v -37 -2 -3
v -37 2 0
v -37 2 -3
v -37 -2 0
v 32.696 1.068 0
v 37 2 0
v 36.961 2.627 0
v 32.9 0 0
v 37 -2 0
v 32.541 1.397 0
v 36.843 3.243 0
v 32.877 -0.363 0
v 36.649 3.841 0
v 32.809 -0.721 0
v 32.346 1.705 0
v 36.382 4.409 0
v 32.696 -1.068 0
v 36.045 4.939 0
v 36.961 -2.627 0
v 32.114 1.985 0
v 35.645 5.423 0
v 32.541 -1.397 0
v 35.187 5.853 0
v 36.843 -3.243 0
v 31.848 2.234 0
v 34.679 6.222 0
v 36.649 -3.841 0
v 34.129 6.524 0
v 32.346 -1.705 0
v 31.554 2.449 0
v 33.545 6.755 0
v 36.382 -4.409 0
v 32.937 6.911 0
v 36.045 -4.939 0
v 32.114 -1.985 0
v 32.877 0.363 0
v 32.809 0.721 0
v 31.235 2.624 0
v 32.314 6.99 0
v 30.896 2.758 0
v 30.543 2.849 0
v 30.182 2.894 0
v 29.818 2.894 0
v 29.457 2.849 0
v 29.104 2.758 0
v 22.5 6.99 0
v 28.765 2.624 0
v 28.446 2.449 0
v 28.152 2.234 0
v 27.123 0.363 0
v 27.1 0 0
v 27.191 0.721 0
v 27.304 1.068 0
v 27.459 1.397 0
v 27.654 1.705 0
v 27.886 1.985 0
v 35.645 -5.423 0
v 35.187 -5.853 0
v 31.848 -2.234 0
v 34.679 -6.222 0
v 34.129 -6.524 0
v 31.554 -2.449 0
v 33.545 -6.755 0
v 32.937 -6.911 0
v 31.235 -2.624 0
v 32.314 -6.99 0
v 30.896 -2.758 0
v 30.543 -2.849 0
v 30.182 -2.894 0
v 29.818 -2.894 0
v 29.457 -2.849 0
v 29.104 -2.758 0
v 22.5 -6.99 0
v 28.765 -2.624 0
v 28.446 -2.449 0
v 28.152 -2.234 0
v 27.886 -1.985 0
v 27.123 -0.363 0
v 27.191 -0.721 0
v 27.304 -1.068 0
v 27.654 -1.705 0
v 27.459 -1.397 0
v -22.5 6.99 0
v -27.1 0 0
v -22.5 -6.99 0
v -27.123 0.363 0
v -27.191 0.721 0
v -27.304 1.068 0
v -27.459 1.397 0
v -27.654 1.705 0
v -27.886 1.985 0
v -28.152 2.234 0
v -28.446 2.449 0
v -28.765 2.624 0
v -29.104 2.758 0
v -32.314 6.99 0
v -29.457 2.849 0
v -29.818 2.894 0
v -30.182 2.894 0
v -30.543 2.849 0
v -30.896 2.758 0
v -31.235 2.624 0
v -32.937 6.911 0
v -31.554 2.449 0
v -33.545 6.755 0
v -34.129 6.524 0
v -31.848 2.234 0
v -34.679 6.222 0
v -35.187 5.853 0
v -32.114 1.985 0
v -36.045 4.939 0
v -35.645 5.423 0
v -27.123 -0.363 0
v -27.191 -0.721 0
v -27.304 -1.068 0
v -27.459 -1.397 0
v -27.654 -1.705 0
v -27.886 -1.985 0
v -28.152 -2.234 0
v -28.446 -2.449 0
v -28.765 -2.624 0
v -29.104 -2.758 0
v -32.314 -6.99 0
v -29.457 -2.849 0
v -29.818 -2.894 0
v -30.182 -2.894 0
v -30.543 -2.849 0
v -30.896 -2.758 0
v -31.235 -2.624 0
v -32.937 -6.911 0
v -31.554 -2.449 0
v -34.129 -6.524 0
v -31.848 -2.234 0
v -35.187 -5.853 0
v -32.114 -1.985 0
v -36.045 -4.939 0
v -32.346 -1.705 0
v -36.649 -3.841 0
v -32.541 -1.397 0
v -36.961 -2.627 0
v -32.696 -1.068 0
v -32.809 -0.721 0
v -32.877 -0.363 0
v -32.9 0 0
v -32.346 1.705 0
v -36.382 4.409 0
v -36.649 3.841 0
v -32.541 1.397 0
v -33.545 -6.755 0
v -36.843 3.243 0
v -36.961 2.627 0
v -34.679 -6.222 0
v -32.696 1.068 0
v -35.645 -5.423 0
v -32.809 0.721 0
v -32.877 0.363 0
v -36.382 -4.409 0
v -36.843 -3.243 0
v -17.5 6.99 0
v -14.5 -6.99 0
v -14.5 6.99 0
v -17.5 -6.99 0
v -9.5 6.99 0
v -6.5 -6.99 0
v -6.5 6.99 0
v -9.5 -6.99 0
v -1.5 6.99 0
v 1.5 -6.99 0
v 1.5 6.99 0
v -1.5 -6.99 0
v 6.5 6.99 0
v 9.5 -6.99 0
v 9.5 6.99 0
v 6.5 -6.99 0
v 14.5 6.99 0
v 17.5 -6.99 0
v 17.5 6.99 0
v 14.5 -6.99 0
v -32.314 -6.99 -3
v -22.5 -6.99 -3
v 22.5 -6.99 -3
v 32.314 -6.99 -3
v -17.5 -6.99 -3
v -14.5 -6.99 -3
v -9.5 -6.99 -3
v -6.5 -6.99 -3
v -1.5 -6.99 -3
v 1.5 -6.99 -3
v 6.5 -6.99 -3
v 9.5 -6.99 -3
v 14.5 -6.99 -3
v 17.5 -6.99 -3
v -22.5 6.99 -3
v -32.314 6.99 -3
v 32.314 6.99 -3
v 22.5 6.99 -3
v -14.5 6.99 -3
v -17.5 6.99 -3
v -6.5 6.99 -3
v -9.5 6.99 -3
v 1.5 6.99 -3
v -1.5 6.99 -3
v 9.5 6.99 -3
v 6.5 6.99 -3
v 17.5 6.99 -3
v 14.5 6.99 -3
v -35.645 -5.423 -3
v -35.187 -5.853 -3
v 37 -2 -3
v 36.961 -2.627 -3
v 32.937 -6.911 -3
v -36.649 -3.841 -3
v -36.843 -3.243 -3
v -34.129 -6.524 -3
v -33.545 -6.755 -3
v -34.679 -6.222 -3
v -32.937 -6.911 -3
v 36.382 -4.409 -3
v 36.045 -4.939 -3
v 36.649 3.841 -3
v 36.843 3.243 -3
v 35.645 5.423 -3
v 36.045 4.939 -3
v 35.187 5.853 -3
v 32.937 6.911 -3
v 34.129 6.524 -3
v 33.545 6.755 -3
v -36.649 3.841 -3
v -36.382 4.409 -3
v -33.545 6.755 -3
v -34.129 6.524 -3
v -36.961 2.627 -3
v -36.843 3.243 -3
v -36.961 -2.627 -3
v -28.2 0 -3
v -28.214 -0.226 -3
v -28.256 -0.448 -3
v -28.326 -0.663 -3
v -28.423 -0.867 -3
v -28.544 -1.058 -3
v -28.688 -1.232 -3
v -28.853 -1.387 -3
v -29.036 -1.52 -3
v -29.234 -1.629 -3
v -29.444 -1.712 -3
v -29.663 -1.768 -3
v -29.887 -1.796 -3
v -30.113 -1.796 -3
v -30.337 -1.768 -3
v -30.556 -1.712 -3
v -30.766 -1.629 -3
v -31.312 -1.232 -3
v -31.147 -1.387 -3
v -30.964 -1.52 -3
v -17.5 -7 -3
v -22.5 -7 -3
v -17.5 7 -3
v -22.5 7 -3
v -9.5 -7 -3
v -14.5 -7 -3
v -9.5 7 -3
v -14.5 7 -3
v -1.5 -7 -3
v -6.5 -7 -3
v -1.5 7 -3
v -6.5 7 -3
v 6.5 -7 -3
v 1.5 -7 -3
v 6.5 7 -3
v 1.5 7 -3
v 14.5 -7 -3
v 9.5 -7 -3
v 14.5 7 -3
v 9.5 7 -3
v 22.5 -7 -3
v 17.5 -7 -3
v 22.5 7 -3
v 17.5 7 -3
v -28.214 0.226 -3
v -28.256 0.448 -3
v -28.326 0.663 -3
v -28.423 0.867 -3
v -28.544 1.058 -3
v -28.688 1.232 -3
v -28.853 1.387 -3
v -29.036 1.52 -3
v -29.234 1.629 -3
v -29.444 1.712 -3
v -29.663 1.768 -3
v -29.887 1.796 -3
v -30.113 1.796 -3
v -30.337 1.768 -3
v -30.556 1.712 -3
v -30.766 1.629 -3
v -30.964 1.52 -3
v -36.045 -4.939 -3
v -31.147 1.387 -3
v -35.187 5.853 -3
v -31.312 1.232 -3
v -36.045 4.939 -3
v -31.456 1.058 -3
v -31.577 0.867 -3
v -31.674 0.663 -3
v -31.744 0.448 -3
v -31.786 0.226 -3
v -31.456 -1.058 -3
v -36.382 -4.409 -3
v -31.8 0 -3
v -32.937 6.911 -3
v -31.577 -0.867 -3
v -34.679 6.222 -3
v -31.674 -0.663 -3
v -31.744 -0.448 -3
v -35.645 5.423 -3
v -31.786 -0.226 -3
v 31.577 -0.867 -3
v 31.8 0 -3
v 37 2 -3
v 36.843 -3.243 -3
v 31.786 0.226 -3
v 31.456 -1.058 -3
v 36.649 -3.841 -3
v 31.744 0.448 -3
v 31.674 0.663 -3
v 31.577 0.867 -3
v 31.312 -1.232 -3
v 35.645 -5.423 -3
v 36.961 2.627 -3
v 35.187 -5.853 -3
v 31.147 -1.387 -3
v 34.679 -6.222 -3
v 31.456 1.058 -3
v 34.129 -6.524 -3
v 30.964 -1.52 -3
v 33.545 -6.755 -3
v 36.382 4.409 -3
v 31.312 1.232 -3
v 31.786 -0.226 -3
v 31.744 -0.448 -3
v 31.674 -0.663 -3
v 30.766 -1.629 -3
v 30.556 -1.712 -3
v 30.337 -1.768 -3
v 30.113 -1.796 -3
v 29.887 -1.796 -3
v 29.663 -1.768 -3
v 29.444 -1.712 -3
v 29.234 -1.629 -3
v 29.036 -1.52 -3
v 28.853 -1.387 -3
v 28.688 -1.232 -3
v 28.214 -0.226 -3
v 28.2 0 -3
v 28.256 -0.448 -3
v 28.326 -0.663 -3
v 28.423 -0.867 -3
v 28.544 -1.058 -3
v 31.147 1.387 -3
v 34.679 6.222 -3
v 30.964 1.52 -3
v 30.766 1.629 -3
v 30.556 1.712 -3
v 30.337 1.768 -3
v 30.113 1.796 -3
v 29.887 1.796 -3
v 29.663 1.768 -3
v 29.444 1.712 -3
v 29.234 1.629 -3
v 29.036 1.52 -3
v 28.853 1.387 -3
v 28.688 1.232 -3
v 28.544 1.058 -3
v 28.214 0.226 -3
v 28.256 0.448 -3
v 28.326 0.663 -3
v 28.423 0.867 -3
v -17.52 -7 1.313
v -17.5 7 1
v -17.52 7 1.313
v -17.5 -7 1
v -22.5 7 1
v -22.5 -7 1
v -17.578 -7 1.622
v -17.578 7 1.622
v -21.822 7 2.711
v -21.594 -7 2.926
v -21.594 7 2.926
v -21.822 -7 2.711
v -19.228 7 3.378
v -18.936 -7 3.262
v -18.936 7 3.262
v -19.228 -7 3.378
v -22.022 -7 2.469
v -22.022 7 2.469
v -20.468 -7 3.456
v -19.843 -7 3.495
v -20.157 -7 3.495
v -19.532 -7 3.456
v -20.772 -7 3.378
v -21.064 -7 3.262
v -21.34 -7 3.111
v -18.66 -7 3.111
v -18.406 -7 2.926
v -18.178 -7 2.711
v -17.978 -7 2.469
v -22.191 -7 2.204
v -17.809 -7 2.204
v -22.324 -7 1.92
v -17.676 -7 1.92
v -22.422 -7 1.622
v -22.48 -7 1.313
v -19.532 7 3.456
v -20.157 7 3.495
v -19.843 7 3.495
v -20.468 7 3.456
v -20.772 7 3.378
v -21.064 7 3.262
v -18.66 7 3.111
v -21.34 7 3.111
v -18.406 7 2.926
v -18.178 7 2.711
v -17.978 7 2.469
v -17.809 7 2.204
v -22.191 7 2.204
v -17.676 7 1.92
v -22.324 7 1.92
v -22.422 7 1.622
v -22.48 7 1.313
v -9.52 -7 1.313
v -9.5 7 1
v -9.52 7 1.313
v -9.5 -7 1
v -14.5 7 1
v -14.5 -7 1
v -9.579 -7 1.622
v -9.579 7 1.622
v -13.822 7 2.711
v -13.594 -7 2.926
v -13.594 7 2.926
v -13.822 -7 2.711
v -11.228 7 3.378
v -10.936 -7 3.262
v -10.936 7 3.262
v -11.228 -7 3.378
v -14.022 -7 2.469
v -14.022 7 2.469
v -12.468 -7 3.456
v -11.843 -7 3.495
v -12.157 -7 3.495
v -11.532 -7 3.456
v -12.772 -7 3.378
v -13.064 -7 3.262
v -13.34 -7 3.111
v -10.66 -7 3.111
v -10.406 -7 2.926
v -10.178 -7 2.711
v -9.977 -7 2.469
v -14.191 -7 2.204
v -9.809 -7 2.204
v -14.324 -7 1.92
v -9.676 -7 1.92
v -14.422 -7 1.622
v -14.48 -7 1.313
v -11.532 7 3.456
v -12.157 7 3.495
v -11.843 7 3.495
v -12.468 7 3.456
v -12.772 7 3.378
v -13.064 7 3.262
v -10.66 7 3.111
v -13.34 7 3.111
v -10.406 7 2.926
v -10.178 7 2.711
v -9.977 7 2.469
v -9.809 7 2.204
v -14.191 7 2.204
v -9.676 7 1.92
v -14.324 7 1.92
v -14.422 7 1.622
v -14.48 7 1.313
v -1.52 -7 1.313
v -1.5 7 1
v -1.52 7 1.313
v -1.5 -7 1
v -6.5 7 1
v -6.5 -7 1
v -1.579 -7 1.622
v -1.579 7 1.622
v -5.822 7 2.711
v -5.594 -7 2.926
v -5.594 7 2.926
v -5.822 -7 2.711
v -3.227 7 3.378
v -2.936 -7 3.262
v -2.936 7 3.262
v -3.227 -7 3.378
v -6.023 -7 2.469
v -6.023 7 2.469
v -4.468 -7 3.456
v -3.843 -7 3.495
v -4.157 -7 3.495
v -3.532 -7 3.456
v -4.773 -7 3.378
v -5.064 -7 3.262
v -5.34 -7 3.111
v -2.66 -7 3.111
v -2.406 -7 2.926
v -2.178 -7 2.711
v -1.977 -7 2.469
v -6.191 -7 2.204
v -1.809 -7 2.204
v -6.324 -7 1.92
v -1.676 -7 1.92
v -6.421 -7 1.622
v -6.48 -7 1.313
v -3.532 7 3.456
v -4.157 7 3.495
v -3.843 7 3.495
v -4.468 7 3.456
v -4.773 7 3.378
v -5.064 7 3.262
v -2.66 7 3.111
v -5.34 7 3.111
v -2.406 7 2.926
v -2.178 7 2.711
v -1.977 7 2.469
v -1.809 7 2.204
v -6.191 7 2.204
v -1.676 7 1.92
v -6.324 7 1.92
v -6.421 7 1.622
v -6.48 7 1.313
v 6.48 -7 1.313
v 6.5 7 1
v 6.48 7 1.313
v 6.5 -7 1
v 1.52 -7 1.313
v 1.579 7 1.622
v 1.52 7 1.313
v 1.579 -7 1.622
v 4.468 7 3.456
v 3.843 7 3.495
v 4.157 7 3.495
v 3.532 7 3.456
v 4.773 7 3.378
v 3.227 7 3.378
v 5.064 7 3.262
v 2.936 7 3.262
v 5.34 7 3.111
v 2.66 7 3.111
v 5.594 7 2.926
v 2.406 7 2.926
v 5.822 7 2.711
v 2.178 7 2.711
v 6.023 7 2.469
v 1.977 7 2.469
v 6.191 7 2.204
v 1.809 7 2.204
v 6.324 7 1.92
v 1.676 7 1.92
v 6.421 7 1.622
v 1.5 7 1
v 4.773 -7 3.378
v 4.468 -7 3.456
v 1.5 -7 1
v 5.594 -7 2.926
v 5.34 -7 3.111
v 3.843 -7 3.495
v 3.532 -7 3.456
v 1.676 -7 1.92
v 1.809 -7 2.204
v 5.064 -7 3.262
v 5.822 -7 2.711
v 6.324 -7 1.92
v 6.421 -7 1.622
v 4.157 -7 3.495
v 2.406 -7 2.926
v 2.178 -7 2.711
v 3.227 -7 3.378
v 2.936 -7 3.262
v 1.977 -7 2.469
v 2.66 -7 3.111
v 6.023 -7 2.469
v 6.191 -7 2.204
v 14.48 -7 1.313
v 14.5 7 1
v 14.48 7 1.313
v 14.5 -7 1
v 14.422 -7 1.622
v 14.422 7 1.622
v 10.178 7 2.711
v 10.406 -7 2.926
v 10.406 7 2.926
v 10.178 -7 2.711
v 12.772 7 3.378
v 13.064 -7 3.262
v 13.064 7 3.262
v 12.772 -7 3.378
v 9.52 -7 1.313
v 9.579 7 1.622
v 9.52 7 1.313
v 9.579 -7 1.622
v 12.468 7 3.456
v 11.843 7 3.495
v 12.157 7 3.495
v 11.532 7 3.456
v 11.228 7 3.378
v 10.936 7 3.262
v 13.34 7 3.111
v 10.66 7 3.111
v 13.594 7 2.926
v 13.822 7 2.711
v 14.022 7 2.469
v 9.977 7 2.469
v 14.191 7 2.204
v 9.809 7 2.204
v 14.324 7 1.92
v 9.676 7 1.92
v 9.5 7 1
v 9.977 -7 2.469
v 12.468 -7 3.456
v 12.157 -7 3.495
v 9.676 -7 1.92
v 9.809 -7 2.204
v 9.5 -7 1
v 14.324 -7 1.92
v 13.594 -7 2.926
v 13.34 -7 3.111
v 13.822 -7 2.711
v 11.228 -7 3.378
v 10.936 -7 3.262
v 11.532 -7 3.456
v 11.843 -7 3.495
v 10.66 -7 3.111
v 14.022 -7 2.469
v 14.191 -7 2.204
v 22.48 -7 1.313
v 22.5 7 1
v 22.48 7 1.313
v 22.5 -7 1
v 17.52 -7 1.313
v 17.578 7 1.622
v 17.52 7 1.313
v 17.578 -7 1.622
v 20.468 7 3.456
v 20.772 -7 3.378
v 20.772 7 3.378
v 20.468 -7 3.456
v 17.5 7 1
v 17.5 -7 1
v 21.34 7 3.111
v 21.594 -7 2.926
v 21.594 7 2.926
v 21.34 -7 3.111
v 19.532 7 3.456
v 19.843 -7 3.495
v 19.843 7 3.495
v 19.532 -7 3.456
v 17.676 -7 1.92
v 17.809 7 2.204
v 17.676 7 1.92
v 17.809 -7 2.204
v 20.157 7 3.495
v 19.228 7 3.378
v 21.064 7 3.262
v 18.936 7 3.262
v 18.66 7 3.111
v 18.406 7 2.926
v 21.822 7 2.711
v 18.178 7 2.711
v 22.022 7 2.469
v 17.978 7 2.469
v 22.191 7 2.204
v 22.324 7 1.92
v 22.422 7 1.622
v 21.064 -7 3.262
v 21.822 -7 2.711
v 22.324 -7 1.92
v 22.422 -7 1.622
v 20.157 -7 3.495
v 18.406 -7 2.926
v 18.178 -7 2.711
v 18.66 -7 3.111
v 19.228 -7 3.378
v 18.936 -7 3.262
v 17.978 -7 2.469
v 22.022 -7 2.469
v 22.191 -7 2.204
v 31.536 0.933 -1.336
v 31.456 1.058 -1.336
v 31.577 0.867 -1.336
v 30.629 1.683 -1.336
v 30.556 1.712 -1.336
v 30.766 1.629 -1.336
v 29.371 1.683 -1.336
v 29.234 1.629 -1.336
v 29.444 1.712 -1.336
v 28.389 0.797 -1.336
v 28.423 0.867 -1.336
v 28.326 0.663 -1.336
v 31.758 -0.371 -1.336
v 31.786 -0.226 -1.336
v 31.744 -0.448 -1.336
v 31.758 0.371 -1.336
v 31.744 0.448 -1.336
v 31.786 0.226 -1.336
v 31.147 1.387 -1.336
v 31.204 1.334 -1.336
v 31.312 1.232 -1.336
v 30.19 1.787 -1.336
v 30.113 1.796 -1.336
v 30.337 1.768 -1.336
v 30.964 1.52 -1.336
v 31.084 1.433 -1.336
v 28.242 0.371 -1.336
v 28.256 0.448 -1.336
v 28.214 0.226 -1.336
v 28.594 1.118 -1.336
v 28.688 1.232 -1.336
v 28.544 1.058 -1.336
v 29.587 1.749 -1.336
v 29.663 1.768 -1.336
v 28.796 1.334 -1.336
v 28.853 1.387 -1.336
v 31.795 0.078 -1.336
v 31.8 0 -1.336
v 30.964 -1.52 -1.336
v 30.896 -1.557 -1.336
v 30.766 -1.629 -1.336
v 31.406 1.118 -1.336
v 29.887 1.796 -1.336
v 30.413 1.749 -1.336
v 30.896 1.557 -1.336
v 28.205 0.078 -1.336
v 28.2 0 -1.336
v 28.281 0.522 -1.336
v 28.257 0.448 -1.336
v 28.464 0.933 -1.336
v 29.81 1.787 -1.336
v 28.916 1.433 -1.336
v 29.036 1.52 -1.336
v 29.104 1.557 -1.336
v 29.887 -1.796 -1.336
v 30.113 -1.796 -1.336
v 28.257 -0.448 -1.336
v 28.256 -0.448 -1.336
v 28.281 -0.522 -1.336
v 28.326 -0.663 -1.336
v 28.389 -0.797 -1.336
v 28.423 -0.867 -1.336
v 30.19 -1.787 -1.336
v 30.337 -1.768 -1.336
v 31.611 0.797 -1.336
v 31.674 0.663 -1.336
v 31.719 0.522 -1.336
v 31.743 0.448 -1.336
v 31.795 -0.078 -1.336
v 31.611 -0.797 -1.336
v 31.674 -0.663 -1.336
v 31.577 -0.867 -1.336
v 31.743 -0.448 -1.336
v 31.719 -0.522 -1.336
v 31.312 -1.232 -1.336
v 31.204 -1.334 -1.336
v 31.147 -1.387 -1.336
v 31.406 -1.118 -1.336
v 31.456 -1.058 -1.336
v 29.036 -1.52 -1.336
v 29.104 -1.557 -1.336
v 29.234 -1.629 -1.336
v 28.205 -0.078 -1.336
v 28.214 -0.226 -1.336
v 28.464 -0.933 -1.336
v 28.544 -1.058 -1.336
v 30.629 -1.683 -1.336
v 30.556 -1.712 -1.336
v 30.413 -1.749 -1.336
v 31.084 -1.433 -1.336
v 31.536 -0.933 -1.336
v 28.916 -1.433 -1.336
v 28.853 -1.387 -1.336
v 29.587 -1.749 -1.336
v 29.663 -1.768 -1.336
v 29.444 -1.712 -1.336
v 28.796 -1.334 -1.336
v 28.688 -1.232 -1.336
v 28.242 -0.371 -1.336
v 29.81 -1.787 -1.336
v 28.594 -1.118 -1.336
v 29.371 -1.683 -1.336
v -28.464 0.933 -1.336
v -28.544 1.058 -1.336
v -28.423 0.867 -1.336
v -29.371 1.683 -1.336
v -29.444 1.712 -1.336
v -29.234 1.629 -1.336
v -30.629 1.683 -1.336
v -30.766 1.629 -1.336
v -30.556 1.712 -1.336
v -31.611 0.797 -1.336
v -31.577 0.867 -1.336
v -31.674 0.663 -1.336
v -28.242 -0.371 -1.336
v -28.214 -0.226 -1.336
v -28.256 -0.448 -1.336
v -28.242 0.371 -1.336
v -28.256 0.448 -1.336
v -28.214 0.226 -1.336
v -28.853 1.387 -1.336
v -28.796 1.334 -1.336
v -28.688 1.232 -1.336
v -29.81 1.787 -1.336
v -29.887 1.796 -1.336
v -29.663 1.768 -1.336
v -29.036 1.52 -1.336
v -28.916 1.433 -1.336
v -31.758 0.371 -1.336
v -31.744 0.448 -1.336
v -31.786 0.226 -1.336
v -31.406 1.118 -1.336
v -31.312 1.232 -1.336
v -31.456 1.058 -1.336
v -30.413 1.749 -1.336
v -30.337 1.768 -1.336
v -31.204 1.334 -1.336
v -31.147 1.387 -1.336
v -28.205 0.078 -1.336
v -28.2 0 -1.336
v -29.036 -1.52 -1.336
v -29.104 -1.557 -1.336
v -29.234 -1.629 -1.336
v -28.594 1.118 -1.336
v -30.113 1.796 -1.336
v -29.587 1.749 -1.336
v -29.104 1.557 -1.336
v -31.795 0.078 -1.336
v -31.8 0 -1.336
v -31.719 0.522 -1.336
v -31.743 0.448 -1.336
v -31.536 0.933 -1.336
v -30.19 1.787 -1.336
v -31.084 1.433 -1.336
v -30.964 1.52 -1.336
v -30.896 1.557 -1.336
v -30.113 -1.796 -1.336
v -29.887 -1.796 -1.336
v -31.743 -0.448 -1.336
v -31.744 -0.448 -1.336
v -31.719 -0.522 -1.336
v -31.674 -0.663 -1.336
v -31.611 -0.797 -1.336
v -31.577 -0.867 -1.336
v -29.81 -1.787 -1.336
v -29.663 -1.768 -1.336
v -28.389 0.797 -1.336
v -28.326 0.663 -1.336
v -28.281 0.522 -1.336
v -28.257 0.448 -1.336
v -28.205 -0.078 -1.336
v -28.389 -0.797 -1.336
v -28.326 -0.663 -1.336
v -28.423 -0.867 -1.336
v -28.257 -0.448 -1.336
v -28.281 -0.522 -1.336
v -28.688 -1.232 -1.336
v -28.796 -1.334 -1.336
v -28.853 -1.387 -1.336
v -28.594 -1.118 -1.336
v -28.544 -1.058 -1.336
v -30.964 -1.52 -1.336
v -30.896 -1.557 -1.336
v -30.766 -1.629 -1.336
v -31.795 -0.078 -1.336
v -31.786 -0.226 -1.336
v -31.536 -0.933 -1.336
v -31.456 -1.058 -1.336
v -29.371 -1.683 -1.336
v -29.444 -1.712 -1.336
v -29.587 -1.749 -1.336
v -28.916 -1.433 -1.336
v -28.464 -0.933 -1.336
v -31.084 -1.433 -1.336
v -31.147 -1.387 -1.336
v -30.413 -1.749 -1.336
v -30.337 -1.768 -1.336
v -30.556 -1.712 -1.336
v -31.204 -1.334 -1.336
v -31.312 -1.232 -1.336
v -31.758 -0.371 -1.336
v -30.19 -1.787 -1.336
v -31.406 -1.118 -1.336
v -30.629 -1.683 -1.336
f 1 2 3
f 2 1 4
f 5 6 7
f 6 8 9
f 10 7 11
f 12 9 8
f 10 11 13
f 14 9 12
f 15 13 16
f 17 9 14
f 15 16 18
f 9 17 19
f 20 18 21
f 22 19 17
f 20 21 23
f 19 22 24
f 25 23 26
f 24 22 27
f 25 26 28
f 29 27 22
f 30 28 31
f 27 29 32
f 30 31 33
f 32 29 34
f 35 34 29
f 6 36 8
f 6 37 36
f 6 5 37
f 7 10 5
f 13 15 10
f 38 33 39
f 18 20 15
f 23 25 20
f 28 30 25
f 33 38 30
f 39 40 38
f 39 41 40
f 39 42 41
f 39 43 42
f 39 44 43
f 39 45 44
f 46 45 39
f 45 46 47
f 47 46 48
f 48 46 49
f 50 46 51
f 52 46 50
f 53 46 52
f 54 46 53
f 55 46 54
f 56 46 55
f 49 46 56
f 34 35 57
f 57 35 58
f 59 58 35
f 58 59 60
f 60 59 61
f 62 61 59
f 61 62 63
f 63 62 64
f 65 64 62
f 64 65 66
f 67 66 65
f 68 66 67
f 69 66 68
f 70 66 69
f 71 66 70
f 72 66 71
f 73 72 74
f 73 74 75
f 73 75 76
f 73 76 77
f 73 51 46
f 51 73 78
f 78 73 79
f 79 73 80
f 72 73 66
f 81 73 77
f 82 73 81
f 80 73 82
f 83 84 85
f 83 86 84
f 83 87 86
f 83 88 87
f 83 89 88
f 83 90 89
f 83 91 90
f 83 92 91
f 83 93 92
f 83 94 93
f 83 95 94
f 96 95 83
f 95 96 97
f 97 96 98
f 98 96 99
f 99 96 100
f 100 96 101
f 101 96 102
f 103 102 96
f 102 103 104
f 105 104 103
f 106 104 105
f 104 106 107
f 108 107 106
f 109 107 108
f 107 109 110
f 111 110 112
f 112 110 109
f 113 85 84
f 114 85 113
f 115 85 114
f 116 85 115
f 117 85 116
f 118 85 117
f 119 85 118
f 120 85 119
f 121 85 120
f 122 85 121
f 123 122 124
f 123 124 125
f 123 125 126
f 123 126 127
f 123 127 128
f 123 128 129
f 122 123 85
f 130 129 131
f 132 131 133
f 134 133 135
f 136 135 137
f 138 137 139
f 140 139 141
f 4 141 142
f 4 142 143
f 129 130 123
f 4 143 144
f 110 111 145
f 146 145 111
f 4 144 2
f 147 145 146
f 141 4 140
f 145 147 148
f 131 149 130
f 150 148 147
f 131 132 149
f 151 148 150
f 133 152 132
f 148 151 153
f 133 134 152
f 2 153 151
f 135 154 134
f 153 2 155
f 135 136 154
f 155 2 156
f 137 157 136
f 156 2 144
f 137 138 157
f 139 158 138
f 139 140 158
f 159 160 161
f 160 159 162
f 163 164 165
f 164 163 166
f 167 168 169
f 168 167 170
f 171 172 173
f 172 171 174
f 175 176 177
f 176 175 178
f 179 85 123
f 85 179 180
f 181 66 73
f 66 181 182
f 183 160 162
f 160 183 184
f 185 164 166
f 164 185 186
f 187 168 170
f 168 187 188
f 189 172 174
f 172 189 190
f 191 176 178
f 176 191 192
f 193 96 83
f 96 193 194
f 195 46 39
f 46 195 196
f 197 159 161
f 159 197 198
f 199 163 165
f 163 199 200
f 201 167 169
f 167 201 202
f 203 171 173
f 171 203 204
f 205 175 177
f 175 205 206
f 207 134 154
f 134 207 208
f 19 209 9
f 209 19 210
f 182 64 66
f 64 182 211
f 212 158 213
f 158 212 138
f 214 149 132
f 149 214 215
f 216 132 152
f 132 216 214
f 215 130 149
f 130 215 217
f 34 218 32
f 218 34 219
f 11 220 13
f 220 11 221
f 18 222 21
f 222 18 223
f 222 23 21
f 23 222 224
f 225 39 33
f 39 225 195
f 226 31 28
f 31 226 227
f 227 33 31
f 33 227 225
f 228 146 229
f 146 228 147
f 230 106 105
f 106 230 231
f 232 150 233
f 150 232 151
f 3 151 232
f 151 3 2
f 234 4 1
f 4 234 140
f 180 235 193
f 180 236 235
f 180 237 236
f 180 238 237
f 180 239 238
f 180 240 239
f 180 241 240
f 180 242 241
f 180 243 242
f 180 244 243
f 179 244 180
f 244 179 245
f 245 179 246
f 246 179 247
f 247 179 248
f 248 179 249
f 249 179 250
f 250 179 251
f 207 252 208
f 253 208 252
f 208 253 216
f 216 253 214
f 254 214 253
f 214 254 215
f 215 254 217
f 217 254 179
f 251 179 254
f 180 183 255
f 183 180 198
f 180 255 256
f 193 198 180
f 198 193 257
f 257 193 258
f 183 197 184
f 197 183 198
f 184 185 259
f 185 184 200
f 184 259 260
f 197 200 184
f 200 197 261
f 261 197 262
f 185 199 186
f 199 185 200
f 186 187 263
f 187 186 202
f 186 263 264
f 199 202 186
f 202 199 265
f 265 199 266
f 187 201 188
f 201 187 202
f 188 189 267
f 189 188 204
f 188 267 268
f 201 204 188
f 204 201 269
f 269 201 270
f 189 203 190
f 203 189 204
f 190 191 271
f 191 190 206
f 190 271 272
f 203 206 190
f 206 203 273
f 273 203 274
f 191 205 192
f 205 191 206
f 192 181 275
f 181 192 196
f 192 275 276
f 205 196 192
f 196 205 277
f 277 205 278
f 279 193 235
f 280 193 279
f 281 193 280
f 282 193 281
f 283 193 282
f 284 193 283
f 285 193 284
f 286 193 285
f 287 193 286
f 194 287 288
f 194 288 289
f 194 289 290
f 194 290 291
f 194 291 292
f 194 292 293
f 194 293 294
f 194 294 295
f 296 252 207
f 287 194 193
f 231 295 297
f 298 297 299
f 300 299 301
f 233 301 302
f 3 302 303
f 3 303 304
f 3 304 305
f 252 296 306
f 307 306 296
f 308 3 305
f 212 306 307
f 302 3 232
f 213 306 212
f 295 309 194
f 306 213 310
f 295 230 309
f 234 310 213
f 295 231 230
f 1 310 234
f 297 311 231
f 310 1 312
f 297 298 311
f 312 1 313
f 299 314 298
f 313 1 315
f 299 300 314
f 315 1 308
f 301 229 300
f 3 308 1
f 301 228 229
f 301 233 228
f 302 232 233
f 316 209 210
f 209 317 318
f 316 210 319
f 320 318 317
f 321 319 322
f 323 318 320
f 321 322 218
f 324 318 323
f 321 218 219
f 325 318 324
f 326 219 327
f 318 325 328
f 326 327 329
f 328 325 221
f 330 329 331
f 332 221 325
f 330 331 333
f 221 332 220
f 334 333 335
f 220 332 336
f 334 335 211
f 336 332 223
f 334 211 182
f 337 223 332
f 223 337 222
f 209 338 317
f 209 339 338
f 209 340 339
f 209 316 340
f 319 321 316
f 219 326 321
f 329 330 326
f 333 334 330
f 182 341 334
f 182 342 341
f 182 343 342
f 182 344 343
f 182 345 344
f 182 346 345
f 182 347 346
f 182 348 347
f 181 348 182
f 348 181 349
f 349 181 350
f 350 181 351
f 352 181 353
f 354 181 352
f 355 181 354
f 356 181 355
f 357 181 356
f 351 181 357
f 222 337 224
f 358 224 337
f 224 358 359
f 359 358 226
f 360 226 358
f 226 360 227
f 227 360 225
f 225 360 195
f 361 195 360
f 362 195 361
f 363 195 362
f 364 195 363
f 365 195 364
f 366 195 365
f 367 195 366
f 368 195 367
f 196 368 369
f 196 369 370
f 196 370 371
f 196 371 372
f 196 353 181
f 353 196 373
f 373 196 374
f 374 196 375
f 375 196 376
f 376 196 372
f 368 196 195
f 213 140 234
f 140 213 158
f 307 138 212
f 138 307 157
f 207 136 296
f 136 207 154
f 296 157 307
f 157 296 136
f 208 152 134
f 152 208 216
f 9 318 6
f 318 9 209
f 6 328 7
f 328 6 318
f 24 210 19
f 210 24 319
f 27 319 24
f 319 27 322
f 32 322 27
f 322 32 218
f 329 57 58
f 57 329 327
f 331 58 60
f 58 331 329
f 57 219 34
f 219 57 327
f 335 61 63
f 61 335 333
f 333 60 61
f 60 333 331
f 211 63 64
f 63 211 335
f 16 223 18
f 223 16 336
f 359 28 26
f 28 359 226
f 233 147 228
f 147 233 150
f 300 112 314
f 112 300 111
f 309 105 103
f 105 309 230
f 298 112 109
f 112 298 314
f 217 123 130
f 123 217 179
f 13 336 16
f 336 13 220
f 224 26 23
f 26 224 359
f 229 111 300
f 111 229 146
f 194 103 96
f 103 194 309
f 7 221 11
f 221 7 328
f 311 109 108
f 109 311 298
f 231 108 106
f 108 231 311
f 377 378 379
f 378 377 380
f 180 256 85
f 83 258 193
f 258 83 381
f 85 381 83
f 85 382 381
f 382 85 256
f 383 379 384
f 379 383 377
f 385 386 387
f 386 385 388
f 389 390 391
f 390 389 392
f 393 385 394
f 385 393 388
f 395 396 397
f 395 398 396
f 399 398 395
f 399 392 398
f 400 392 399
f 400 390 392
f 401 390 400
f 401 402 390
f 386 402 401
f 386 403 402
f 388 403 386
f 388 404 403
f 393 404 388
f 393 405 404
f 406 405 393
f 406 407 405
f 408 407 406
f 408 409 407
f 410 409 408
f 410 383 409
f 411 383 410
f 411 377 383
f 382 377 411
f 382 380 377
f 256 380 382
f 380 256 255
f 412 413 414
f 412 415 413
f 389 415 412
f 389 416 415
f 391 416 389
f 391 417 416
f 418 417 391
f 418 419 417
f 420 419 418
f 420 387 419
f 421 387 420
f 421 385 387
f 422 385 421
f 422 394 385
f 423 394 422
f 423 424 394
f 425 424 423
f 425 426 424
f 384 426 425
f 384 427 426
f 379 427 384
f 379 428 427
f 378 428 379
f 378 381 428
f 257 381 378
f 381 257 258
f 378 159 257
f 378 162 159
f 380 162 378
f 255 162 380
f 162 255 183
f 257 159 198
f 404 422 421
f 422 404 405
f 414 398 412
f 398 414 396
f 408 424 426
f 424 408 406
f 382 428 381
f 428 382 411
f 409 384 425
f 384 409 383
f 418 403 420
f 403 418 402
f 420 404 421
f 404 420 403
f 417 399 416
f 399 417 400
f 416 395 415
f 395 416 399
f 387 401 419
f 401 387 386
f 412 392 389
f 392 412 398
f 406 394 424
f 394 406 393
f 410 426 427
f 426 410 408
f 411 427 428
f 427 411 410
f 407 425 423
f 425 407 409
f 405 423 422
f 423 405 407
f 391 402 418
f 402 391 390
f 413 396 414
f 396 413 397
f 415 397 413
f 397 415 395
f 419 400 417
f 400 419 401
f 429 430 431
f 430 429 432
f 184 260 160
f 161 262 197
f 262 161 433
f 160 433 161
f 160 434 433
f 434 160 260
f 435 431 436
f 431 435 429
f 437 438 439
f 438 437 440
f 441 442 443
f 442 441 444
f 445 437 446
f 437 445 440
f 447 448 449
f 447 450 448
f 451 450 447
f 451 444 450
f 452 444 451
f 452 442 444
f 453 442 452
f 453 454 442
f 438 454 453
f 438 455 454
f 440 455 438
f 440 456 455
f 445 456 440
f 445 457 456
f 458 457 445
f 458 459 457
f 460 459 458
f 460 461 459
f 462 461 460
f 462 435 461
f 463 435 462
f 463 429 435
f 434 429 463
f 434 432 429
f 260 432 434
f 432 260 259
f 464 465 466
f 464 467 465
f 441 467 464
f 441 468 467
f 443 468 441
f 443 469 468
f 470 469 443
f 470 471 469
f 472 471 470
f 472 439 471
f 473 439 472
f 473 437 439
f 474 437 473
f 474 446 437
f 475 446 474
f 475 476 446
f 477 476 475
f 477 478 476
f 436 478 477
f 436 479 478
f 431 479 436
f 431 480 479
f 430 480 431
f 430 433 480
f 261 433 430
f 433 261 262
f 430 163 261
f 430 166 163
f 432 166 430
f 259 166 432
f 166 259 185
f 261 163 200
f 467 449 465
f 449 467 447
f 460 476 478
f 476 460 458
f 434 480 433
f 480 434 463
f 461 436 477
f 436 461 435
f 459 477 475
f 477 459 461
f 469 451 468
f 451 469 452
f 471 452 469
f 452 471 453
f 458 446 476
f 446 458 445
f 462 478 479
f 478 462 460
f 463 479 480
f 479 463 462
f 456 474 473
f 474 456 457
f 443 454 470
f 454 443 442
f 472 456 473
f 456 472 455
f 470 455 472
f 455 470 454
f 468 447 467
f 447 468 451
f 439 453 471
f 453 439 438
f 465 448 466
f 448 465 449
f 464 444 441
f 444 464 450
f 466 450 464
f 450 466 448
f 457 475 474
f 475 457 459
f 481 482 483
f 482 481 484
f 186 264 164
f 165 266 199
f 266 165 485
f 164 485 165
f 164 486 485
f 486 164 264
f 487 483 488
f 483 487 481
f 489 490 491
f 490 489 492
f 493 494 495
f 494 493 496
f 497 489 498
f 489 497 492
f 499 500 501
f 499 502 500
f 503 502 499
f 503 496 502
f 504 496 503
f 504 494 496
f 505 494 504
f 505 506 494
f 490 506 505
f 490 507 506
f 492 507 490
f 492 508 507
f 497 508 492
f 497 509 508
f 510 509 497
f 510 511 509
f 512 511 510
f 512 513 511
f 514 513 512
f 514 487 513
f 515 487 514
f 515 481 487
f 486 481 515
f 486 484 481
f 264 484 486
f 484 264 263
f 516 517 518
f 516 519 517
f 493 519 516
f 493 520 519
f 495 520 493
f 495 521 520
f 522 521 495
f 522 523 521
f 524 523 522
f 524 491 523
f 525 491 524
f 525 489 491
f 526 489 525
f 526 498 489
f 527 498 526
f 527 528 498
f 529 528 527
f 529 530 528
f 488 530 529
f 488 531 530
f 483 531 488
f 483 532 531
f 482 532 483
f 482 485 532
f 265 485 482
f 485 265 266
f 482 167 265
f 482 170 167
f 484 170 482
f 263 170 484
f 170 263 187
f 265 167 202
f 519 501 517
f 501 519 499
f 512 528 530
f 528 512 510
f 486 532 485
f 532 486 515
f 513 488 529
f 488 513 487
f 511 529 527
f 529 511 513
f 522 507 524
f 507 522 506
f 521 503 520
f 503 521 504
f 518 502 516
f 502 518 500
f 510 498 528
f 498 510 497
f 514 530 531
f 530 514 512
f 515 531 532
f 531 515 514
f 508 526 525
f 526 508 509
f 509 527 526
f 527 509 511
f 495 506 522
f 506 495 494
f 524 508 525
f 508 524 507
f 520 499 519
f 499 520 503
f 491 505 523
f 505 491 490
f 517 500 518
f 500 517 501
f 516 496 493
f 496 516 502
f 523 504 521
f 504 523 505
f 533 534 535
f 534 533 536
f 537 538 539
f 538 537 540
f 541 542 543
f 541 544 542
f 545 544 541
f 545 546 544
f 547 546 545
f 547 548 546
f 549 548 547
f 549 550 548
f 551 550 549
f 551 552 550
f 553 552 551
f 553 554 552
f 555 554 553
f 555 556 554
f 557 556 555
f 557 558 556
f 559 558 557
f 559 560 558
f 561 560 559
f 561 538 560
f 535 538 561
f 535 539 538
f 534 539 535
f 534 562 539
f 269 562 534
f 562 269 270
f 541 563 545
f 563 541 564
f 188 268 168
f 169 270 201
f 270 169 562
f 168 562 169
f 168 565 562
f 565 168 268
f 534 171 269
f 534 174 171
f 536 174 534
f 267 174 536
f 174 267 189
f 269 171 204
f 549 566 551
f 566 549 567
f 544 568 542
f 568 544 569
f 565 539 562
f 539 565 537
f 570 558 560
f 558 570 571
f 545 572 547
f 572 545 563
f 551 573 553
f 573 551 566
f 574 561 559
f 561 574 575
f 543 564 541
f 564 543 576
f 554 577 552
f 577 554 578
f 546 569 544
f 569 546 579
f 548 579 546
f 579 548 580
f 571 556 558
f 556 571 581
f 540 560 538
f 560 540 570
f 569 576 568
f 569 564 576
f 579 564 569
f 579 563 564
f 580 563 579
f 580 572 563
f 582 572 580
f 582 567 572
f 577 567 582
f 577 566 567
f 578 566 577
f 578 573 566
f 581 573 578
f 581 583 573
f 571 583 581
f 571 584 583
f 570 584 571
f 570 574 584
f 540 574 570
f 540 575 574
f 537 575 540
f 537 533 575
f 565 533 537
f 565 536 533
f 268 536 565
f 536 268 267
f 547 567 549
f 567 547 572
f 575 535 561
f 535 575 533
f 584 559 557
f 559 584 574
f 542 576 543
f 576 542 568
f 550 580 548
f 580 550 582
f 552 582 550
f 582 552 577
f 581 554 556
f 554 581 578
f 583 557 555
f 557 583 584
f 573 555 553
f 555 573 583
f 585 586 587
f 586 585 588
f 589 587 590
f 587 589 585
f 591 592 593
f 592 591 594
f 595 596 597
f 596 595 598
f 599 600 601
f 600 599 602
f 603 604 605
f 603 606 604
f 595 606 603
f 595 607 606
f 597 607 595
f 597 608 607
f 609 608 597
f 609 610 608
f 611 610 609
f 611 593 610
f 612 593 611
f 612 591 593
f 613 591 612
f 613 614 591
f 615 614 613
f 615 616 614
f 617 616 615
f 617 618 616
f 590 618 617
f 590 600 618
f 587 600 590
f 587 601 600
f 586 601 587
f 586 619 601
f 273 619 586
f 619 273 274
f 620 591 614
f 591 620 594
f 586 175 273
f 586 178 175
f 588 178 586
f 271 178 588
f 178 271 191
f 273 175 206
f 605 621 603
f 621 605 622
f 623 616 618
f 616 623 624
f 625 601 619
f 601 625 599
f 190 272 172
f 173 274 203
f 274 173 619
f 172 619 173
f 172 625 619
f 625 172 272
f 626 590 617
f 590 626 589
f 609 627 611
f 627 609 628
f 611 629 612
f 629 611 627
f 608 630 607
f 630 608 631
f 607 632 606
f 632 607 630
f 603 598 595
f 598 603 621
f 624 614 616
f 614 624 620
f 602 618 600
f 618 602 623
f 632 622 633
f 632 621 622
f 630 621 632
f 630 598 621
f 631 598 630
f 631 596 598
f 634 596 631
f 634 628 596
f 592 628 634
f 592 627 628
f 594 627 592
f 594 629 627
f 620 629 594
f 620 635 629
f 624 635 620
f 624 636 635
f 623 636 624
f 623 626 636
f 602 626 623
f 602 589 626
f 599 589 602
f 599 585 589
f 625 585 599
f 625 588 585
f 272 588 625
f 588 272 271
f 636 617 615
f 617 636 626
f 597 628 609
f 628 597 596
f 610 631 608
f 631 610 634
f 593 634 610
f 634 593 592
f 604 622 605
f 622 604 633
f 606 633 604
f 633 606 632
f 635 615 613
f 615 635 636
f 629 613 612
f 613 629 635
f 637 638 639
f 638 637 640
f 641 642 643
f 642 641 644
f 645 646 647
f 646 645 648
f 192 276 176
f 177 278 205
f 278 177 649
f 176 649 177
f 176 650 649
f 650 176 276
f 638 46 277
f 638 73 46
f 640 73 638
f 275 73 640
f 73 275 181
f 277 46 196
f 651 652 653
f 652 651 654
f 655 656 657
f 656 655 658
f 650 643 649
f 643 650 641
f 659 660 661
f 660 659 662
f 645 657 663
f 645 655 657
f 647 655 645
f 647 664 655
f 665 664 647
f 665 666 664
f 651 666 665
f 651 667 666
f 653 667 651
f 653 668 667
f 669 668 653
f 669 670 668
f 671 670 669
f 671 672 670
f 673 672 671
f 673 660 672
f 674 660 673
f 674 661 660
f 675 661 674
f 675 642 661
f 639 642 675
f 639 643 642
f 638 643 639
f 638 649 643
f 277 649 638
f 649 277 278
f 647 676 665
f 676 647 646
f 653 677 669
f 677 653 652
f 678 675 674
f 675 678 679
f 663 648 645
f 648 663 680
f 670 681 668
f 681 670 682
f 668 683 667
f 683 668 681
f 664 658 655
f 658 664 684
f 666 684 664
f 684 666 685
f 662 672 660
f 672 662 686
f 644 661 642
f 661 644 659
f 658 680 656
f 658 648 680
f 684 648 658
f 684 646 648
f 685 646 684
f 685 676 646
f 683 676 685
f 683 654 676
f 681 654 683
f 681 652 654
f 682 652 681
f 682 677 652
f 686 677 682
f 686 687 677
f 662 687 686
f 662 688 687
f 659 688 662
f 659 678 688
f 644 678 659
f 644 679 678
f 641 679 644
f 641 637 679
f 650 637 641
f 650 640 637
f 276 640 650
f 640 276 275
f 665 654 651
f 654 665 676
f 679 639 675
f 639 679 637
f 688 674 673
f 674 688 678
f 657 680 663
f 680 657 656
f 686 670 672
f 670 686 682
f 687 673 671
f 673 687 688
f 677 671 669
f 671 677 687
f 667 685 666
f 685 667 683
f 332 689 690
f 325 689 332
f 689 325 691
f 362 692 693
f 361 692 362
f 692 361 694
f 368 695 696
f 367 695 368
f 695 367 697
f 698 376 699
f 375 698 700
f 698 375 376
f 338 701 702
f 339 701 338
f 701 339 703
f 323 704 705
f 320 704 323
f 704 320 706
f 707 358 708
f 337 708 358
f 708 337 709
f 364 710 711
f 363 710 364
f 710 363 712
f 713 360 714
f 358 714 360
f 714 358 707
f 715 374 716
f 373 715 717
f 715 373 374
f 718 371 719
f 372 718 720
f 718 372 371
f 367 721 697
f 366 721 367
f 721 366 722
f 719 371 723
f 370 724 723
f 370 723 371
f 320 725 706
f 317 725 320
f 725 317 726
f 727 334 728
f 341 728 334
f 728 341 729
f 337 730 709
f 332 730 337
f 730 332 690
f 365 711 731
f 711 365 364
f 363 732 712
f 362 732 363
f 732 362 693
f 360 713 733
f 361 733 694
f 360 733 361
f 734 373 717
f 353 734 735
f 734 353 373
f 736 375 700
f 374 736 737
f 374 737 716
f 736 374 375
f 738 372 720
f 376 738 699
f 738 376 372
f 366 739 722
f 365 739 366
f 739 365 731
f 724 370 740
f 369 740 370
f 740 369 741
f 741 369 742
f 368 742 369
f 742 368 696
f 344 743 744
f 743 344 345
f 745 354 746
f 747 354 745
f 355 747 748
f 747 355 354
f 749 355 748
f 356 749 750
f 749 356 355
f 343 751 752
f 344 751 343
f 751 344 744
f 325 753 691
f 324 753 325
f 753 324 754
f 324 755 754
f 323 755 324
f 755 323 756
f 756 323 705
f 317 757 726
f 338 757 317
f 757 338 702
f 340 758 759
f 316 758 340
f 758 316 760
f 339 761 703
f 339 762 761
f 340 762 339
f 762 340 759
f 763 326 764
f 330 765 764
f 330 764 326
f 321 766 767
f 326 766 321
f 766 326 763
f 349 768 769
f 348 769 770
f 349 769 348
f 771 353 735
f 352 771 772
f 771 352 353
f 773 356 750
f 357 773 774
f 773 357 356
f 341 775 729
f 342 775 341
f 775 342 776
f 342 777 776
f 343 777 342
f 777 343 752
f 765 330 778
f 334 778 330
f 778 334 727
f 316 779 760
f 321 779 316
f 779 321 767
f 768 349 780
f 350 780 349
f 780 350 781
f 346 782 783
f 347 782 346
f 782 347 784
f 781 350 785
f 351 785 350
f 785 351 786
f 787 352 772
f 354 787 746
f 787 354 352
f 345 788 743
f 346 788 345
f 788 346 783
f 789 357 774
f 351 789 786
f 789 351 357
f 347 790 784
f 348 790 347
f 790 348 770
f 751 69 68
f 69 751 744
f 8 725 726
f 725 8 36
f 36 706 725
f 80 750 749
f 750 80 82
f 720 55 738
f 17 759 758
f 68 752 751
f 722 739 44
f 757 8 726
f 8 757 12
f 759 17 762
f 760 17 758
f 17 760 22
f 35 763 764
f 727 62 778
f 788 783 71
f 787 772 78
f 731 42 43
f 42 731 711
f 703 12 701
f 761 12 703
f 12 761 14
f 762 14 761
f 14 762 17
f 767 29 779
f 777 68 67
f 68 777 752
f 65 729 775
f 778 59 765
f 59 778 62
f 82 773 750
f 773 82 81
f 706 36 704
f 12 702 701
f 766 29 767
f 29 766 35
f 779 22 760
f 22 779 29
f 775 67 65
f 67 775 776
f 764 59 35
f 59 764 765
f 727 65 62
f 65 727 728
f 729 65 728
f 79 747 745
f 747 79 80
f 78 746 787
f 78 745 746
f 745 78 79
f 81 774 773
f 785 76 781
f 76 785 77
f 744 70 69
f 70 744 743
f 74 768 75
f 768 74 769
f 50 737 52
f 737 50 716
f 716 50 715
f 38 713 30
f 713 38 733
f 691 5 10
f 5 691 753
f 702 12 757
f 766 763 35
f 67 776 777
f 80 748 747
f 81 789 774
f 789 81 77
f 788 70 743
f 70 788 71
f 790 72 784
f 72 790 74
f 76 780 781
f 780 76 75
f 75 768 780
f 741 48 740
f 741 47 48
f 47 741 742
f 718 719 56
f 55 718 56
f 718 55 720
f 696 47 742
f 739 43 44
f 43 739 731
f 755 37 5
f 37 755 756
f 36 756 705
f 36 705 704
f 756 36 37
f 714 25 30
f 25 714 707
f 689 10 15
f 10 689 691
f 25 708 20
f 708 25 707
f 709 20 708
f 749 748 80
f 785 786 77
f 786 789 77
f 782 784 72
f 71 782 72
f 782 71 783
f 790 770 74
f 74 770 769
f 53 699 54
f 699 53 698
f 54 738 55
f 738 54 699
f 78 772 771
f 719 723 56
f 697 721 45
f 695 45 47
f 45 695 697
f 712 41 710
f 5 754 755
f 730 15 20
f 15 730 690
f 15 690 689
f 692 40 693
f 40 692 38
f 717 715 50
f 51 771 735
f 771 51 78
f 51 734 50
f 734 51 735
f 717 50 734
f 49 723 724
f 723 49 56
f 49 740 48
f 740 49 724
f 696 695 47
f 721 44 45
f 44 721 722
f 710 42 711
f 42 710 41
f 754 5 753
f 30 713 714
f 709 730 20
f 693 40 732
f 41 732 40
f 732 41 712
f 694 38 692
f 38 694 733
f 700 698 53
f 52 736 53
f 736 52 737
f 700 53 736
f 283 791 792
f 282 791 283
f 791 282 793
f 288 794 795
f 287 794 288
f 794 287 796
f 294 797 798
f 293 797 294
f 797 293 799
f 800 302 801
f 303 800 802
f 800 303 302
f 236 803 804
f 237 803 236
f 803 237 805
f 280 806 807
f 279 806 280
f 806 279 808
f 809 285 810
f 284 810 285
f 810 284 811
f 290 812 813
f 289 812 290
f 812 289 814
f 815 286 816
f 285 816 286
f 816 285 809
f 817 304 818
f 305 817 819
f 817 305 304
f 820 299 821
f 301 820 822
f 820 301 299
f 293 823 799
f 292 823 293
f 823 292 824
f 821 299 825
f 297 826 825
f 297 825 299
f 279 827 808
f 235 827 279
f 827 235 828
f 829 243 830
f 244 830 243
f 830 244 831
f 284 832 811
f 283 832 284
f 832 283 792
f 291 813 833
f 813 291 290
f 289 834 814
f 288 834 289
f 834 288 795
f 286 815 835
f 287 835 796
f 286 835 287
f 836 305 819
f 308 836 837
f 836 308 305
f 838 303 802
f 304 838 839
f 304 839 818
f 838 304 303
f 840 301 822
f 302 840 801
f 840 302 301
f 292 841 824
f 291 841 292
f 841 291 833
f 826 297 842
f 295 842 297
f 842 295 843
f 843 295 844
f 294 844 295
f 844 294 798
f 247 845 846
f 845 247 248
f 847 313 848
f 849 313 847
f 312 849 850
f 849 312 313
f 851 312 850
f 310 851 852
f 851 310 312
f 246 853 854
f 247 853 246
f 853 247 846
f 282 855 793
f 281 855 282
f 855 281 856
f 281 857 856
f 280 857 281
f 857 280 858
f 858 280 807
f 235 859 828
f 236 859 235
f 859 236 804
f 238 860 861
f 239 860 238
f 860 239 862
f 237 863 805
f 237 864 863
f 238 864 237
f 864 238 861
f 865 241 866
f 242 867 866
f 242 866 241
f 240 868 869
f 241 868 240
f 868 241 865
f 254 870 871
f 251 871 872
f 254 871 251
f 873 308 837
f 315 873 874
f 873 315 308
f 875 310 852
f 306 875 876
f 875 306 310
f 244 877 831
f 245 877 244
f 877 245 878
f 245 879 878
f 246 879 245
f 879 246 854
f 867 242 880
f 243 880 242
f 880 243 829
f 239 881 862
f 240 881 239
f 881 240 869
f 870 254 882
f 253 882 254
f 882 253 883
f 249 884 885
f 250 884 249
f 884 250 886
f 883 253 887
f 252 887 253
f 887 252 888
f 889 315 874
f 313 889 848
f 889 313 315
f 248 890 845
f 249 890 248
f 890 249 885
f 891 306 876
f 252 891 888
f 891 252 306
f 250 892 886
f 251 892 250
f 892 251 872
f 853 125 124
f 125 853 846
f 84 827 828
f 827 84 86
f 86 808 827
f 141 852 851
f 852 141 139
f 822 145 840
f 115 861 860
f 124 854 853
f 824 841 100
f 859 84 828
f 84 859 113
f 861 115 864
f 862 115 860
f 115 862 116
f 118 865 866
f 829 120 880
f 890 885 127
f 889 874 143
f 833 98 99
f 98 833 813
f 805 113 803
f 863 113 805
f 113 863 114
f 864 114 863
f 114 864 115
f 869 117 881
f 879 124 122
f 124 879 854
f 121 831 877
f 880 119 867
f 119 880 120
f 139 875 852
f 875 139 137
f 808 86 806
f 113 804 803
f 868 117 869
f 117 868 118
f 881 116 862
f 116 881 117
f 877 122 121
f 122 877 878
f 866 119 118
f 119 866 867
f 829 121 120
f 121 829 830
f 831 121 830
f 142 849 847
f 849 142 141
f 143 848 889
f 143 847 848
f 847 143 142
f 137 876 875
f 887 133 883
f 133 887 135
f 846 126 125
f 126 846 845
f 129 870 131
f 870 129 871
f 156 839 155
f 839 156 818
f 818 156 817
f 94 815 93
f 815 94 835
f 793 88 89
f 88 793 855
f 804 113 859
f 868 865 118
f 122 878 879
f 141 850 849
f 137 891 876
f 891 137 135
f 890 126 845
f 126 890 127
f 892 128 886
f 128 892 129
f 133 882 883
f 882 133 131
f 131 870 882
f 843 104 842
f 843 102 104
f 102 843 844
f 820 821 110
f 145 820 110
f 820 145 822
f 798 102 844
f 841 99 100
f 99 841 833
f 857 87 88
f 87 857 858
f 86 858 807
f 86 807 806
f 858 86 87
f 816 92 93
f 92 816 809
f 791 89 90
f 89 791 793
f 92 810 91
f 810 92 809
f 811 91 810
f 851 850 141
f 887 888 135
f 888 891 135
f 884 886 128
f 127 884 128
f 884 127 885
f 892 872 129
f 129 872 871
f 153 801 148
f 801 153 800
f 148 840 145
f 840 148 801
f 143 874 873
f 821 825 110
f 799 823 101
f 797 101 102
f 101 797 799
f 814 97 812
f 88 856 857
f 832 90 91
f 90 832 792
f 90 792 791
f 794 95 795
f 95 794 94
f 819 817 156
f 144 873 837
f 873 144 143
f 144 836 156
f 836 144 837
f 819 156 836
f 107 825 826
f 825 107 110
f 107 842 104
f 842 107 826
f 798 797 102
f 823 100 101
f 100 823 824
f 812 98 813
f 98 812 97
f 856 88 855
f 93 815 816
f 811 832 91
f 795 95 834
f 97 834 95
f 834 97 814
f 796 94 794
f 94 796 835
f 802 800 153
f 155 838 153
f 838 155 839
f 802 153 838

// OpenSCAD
$fn = 50;


difference() {
	union() {
		translate(v = [0, 0, -3]) {
			hull() {
				translate(v = [-32.0000000000, 2.0000000000, 0]) {
					cylinder(h = 3, r = 5);
				}
				translate(v = [32.0000000000, 2.0000000000, 0]) {
					cylinder(h = 3, r = 5);
				}
				translate(v = [-32.0000000000, -2.0000000000, 0]) {
					cylinder(h = 3, r = 5);
				}
				translate(v = [32.0000000000, -2.0000000000, 0]) {
					cylinder(h = 3, r = 5);
				}
			}
		}
		translate(v = [-20.0000000000, 7.0000000000, -1.5000000000]) {
			rotate(a = [90, 0, 0]) {
				hull() {
					translate(v = [-0.0000000000, 2.5000000000, 0]) {
						cylinder(h = 14, r = 2.5000000000);
					}
					translate(v = [0.0000000000, 2.5000000000, 0]) {
						cylinder(h = 14, r = 2.5000000000);
					}
					translate(v = [-0.0000000000, -2.5000000000, 0]) {
						cylinder(h = 14, r = 2.5000000000);
					}
					translate(v = [0.0000000000, -2.5000000000, 0]) {
						cylinder(h = 14, r = 2.5000000000);
					}
				}
			}
		}
		translate(v = [-12.0000000000, 7.0000000000, -1.5000000000]) {
			rotate(a = [90, 0, 0]) {
				hull() {
					translate(v = [-0.0000000000, 2.5000000000, 0]) {
						cylinder(h = 14, r = 2.5000000000);
					}
					translate(v = [0.0000000000, 2.5000000000, 0]) {
						cylinder(h = 14, r = 2.5000000000);
					}
					translate(v = [-0.0000000000, -2.5000000000, 0]) {
						cylinder(h = 14, r = 2.5000000000);
					}
					translate(v = [0.0000000000, -2.5000000000, 0]) {
						cylinder(h = 14, r = 2.5000000000);
					}
				}
			}
		}
		translate(v = [-4.0000000000, 7.0000000000, -1.5000000000]) {
			rotate(a = [90, 0, 0]) {
				hull() {
					translate(v = [-0.0000000000, 2.5000000000, 0]) {
						cylinder(h = 14, r = 2.5000000000);
					}
					translate(v = [0.0000000000, 2.5000000000, 0]) {
						cylinder(h = 14, r = 2.5000000000);
					}
					translate(v = [-0.0000000000, -2.5000000000, 0]) {
						cylinder(h = 14, r = 2.5000000000);
					}
					translate(v = [0.0000000000, -2.5000000000, 0]) {
						cylinder(h = 14, r = 2.5000000000);
					}
				}
			}
		}
		translate(v = [4.0000000000, 7.0000000000, -1.5000000000]) {
			rotate(a = [90, 0, 0]) {
				hull() {
					translate(v = [-0.0000000000, 2.5000000000, 0]) {
						cylinder(h = 14, r = 2.5000000000);
					}
					translate(v = [0.0000000000, 2.5000000000, 0]) {
						cylinder(h = 14, r = 2.5000000000);
					}
					translate(v = [-0.0000000000, -2.5000000000, 0]) {
						cylinder(h = 14, r = 2.5000000000);
					}
					translate(v = [0.0000000000, -2.5000000000, 0]) {
						cylinder(h = 14, r = 2.5000000000);
					}
				}
			}
		}
		translate(v = [12.0000000000, 7.0000000000, -1.5000000000]) {
			rotate(a = [90, 0, 0]) {
				hull() {
					translate(v = [-0.0000000000, 2.5000000000, 0]) {
						cylinder(h = 14, r = 2.5000000000);
					}
					translate(v = [0.0000000000, 2.5000000000, 0]) {
						cylinder(h = 14, r = 2.5000000000);
					}
					translate(v = [-0.0000000000, -2.5000000000, 0]) {
						cylinder(h = 14, r = 2.5000000000);
					}
					translate(v = [0.0000000000, -2.5000000000, 0]) {
						cylinder(h = 14, r = 2.5000000000);
					}
				}
			}
		}
		translate(v = [20.0000000000, 7.0000000000, -1.5000000000]) {
			rotate(a = [90, 0, 0]) {
				hull() {
					translate(v = [-0.0000000000, 2.5000000000, 0]) {
						cylinder(h = 14, r = 2.5000000000);
					}
					translate(v = [0.0000000000, 2.5000000000, 0]) {
						cylinder(h = 14, r = 2.5000000000);
					}
					translate(v = [-0.0000000000, -2.5000000000, 0]) {
						cylinder(h = 14, r = 2.5000000000);
					}
					translate(v = [0.0000000000, -2.5000000000, 0]) {
						cylinder(h = 14, r = 2.5000000000);
					}
				}
			}
		}
	}
	union() {
		translate(v = [30.0000000000, 0.0000000000, 0]) {
			rotate(a = [0, 0, 0]) {
				difference() {
					union() {
						translate(v = [0, 0, -3.0000000000]) {
							cylinder(h = 3, r = 1.5000000000);
						}
						translate(v = [0, 0, -3.0000000000]) {
							cylinder(h = 3, r = 1.8000000000);
						}
						translate(v = [0, 0, -1.7000000000]) {
							cylinder(h = 1.7000000000, r1 = 1.5000000000, r2 = 2.9000000000);
						}
						translate(v = [0, 0, -3.0000000000]) {
							cylinder(h = 3, r = 1.5000000000);
						}
					}
					union();
				}
			}
		}
		translate(v = [-30.0000000000, 0.0000000000, 0]) {
			rotate(a = [0, 0, 0]) {
				difference() {
					union() {
						translate(v = [0, 0, -3.0000000000]) {
							cylinder(h = 3, r = 1.5000000000);
						}
						translate(v = [0, 0, -3.0000000000]) {
							cylinder(h = 3, r = 1.8000000000);
						}
						translate(v = [0, 0, -1.7000000000]) {
							cylinder(h = 1.7000000000, r1 = 1.5000000000, r2 = 2.9000000000);
						}
						translate(v = [0, 0, -3.0000000000]) {
							cylinder(h = 3, r = 1.5000000000);
						}
					}
					union();
				}
			}
		}
		translate(v = [-250.0000000000, -250.0000000000, -503]) {
			cube(size = [500, 500, 500]);
		}
		translate(v = [-250.0000000000, -250.0000000000, -503]) {
			cube(size = [500, 500, 500]);
		}
		translate(v = [-250.0000000000, -250.0000000000, -503]) {
			cube(size = [500, 500, 500]);
		}
		translate(v = [-30.0000000000, 0.0000000000, -100.0000000000]) {
			cylinder(h = 200, r = 1.5000000000);
		}
		translate(v = [30.0000000000, 0.0000000000, -100.0000000000]) {
			cylinder(h = 200, r = 1.5000000000);
		}
		translate(v = [30.0000000000, 0.0000000000, -100.0000000000]) {
			cylinder(h = 200, r = 1.5000000000);
		}
		translate(v = [-30.0000000000, 0.0000000000, -100.0000000000]) {
			cylinder(h = 200, r = 1.5000000000);
		}
		translate(v = [30.0000000000, 0.0000000000, -100.0000000000]) {
			cylinder(h = 200, r = 1.5000000000);
		}
		translate(v = [-30.0000000000, 0.0000000000, -100.0000000000]) {
			cylinder(h = 200, r = 1.5000000000);
		}
		translate(v = [30.0000000000, 0.0000000000, -100.0000000000]) {
			cylinder(h = 200, r = 1.5000000000);
		}
		translate(v = [-30.0000000000, 0.0000000000, -100.0000000000]) {
			cylinder(h = 200, r = 1.5000000000);
		}
		translate(v = [30.0000000000, 0.0000000000, -100.0000000000]) {
			cylinder(h = 200, r = 1.5000000000);
		}
	}
}
